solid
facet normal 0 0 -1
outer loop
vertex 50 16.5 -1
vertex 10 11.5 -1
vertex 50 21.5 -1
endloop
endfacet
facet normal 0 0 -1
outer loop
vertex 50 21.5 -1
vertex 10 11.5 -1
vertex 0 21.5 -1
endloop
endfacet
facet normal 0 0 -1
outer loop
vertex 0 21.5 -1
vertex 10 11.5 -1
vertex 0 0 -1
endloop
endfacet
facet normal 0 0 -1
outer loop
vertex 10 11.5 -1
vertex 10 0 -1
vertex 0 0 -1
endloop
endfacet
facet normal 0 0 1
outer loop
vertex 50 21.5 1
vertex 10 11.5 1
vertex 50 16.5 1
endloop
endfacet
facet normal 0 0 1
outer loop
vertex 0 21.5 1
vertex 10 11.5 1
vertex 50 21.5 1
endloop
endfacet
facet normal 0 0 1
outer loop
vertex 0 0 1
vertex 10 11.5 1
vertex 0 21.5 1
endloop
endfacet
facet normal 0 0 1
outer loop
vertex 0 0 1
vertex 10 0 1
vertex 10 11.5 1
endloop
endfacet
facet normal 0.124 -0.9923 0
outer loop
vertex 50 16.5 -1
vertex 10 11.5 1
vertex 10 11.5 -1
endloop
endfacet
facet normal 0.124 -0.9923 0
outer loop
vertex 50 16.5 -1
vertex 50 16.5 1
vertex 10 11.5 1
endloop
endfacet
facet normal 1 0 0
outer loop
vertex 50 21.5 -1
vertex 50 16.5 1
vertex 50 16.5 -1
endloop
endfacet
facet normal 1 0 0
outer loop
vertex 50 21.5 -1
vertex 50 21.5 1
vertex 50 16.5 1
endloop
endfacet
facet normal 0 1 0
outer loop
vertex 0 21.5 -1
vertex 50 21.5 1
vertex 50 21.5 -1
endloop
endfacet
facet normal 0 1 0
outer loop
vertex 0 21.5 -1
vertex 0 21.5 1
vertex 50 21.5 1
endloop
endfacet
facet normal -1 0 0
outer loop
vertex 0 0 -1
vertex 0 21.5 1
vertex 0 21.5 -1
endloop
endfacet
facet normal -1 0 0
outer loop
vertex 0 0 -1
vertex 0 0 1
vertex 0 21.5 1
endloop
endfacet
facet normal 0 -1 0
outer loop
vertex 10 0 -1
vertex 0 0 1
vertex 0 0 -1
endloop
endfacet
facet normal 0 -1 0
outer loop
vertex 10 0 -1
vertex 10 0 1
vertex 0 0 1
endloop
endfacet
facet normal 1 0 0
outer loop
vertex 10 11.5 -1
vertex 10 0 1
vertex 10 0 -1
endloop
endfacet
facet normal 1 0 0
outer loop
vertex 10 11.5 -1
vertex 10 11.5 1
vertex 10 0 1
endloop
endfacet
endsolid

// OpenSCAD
// file: variables.scad
$fn = 50;
//chambres

//globol

decal = 5; //decalage global chambres
lg = 310; //longueur totale
lag = 60; //largeur totae
ep = 1.5; //epaisseur plak
etv = 19; // ecart vert touches
eth = 14; //ecrat hor touches
nb = 15; //nombre de touches

//plaque dessus

hpd = 40; //hauteur plaque dessus
dth = 8; //diametre des trous pl haut
dtb = 6; //diametre des trous pl bas

//include <plaque_dessus.scad>

//tubes 

dtige=4; //diametre tige bouton
dtub = 6; //dimatre tube 
drtub = 8; //diametre tube ressort
hrtub = 10; //hauteur ressort tube
hbtub = 14; //hauteur du bas du tube

//include <tubes.scad>

//chambre

htc=10;//hauteur chambres
epa = 2; //epaisseur ailettes
epc=3; //grosse epaisseur chmbre

long0=etv-drtub;
long00=etv-drtub-ep*2;
long000=etv+etv/2;
long1=lag/2-drtub/2-epc-epc/2;
long2=lag/2+epc/2+drtub/2;

longb = 10; //largueur basse ailette
longh = 5; //largeur haute ailette

lab = lag-longb*2;


//plaque dessus ici a cause des variables des chambres


//tigettes

epe = 6; //epaisseur escalier
escalier = 3; //ecart de hauteur des touches
htig = hpd+epe;
etouch = 3; //epaisseur touche    
diat = 15; // diametre de la touche
//coté droit



echo();
echo();
echo();
echo();
echo("***********************");
echo("long000 aka inter cloisons = ", long000);
echo("long0 fond des cloisons = ", long0);
echo("long1 base ailette centrale = ", long1);
echo("long2 base ailette grande = ", long2);




echo("*********************** ");
echo();
echo();


hypo = sqrt((longb-longh)^2 + hpd^2);
echo("hypo" ,hypo);
cosin = hpd/hypo;
echo("cos alpha",cosin);
angle = acos(cosin);
echo("angle",angle);



//reservoir d'air


htr = 8;



//plaques ltérales

hhtt=37; //hauteur première plaque

//include <plaques_laterales.scad>

//plaques internes

//plaque intermediaire ou bout de bois


hauteur = hpd-hrtub;
echo("hauteur" , hauteur);
hypopo = 1 / (cos(angle) / hauteur);
hypopopo = 1 / (cos(angle) / hpd);
echo("hypopo", hypopo);
coop = sin(angle) * hypopo;
echo("coop", coop);

//plaques laterale interne
// main file
include <variables.scad>

linear_extrude(epa, center=true, convexity=10,twist=0)
polygon([[0,0],[0,long1],[hpd+htc,long1],[hpd+htc,long1-longh],[htc,long1-longb],[htc,0]]);
